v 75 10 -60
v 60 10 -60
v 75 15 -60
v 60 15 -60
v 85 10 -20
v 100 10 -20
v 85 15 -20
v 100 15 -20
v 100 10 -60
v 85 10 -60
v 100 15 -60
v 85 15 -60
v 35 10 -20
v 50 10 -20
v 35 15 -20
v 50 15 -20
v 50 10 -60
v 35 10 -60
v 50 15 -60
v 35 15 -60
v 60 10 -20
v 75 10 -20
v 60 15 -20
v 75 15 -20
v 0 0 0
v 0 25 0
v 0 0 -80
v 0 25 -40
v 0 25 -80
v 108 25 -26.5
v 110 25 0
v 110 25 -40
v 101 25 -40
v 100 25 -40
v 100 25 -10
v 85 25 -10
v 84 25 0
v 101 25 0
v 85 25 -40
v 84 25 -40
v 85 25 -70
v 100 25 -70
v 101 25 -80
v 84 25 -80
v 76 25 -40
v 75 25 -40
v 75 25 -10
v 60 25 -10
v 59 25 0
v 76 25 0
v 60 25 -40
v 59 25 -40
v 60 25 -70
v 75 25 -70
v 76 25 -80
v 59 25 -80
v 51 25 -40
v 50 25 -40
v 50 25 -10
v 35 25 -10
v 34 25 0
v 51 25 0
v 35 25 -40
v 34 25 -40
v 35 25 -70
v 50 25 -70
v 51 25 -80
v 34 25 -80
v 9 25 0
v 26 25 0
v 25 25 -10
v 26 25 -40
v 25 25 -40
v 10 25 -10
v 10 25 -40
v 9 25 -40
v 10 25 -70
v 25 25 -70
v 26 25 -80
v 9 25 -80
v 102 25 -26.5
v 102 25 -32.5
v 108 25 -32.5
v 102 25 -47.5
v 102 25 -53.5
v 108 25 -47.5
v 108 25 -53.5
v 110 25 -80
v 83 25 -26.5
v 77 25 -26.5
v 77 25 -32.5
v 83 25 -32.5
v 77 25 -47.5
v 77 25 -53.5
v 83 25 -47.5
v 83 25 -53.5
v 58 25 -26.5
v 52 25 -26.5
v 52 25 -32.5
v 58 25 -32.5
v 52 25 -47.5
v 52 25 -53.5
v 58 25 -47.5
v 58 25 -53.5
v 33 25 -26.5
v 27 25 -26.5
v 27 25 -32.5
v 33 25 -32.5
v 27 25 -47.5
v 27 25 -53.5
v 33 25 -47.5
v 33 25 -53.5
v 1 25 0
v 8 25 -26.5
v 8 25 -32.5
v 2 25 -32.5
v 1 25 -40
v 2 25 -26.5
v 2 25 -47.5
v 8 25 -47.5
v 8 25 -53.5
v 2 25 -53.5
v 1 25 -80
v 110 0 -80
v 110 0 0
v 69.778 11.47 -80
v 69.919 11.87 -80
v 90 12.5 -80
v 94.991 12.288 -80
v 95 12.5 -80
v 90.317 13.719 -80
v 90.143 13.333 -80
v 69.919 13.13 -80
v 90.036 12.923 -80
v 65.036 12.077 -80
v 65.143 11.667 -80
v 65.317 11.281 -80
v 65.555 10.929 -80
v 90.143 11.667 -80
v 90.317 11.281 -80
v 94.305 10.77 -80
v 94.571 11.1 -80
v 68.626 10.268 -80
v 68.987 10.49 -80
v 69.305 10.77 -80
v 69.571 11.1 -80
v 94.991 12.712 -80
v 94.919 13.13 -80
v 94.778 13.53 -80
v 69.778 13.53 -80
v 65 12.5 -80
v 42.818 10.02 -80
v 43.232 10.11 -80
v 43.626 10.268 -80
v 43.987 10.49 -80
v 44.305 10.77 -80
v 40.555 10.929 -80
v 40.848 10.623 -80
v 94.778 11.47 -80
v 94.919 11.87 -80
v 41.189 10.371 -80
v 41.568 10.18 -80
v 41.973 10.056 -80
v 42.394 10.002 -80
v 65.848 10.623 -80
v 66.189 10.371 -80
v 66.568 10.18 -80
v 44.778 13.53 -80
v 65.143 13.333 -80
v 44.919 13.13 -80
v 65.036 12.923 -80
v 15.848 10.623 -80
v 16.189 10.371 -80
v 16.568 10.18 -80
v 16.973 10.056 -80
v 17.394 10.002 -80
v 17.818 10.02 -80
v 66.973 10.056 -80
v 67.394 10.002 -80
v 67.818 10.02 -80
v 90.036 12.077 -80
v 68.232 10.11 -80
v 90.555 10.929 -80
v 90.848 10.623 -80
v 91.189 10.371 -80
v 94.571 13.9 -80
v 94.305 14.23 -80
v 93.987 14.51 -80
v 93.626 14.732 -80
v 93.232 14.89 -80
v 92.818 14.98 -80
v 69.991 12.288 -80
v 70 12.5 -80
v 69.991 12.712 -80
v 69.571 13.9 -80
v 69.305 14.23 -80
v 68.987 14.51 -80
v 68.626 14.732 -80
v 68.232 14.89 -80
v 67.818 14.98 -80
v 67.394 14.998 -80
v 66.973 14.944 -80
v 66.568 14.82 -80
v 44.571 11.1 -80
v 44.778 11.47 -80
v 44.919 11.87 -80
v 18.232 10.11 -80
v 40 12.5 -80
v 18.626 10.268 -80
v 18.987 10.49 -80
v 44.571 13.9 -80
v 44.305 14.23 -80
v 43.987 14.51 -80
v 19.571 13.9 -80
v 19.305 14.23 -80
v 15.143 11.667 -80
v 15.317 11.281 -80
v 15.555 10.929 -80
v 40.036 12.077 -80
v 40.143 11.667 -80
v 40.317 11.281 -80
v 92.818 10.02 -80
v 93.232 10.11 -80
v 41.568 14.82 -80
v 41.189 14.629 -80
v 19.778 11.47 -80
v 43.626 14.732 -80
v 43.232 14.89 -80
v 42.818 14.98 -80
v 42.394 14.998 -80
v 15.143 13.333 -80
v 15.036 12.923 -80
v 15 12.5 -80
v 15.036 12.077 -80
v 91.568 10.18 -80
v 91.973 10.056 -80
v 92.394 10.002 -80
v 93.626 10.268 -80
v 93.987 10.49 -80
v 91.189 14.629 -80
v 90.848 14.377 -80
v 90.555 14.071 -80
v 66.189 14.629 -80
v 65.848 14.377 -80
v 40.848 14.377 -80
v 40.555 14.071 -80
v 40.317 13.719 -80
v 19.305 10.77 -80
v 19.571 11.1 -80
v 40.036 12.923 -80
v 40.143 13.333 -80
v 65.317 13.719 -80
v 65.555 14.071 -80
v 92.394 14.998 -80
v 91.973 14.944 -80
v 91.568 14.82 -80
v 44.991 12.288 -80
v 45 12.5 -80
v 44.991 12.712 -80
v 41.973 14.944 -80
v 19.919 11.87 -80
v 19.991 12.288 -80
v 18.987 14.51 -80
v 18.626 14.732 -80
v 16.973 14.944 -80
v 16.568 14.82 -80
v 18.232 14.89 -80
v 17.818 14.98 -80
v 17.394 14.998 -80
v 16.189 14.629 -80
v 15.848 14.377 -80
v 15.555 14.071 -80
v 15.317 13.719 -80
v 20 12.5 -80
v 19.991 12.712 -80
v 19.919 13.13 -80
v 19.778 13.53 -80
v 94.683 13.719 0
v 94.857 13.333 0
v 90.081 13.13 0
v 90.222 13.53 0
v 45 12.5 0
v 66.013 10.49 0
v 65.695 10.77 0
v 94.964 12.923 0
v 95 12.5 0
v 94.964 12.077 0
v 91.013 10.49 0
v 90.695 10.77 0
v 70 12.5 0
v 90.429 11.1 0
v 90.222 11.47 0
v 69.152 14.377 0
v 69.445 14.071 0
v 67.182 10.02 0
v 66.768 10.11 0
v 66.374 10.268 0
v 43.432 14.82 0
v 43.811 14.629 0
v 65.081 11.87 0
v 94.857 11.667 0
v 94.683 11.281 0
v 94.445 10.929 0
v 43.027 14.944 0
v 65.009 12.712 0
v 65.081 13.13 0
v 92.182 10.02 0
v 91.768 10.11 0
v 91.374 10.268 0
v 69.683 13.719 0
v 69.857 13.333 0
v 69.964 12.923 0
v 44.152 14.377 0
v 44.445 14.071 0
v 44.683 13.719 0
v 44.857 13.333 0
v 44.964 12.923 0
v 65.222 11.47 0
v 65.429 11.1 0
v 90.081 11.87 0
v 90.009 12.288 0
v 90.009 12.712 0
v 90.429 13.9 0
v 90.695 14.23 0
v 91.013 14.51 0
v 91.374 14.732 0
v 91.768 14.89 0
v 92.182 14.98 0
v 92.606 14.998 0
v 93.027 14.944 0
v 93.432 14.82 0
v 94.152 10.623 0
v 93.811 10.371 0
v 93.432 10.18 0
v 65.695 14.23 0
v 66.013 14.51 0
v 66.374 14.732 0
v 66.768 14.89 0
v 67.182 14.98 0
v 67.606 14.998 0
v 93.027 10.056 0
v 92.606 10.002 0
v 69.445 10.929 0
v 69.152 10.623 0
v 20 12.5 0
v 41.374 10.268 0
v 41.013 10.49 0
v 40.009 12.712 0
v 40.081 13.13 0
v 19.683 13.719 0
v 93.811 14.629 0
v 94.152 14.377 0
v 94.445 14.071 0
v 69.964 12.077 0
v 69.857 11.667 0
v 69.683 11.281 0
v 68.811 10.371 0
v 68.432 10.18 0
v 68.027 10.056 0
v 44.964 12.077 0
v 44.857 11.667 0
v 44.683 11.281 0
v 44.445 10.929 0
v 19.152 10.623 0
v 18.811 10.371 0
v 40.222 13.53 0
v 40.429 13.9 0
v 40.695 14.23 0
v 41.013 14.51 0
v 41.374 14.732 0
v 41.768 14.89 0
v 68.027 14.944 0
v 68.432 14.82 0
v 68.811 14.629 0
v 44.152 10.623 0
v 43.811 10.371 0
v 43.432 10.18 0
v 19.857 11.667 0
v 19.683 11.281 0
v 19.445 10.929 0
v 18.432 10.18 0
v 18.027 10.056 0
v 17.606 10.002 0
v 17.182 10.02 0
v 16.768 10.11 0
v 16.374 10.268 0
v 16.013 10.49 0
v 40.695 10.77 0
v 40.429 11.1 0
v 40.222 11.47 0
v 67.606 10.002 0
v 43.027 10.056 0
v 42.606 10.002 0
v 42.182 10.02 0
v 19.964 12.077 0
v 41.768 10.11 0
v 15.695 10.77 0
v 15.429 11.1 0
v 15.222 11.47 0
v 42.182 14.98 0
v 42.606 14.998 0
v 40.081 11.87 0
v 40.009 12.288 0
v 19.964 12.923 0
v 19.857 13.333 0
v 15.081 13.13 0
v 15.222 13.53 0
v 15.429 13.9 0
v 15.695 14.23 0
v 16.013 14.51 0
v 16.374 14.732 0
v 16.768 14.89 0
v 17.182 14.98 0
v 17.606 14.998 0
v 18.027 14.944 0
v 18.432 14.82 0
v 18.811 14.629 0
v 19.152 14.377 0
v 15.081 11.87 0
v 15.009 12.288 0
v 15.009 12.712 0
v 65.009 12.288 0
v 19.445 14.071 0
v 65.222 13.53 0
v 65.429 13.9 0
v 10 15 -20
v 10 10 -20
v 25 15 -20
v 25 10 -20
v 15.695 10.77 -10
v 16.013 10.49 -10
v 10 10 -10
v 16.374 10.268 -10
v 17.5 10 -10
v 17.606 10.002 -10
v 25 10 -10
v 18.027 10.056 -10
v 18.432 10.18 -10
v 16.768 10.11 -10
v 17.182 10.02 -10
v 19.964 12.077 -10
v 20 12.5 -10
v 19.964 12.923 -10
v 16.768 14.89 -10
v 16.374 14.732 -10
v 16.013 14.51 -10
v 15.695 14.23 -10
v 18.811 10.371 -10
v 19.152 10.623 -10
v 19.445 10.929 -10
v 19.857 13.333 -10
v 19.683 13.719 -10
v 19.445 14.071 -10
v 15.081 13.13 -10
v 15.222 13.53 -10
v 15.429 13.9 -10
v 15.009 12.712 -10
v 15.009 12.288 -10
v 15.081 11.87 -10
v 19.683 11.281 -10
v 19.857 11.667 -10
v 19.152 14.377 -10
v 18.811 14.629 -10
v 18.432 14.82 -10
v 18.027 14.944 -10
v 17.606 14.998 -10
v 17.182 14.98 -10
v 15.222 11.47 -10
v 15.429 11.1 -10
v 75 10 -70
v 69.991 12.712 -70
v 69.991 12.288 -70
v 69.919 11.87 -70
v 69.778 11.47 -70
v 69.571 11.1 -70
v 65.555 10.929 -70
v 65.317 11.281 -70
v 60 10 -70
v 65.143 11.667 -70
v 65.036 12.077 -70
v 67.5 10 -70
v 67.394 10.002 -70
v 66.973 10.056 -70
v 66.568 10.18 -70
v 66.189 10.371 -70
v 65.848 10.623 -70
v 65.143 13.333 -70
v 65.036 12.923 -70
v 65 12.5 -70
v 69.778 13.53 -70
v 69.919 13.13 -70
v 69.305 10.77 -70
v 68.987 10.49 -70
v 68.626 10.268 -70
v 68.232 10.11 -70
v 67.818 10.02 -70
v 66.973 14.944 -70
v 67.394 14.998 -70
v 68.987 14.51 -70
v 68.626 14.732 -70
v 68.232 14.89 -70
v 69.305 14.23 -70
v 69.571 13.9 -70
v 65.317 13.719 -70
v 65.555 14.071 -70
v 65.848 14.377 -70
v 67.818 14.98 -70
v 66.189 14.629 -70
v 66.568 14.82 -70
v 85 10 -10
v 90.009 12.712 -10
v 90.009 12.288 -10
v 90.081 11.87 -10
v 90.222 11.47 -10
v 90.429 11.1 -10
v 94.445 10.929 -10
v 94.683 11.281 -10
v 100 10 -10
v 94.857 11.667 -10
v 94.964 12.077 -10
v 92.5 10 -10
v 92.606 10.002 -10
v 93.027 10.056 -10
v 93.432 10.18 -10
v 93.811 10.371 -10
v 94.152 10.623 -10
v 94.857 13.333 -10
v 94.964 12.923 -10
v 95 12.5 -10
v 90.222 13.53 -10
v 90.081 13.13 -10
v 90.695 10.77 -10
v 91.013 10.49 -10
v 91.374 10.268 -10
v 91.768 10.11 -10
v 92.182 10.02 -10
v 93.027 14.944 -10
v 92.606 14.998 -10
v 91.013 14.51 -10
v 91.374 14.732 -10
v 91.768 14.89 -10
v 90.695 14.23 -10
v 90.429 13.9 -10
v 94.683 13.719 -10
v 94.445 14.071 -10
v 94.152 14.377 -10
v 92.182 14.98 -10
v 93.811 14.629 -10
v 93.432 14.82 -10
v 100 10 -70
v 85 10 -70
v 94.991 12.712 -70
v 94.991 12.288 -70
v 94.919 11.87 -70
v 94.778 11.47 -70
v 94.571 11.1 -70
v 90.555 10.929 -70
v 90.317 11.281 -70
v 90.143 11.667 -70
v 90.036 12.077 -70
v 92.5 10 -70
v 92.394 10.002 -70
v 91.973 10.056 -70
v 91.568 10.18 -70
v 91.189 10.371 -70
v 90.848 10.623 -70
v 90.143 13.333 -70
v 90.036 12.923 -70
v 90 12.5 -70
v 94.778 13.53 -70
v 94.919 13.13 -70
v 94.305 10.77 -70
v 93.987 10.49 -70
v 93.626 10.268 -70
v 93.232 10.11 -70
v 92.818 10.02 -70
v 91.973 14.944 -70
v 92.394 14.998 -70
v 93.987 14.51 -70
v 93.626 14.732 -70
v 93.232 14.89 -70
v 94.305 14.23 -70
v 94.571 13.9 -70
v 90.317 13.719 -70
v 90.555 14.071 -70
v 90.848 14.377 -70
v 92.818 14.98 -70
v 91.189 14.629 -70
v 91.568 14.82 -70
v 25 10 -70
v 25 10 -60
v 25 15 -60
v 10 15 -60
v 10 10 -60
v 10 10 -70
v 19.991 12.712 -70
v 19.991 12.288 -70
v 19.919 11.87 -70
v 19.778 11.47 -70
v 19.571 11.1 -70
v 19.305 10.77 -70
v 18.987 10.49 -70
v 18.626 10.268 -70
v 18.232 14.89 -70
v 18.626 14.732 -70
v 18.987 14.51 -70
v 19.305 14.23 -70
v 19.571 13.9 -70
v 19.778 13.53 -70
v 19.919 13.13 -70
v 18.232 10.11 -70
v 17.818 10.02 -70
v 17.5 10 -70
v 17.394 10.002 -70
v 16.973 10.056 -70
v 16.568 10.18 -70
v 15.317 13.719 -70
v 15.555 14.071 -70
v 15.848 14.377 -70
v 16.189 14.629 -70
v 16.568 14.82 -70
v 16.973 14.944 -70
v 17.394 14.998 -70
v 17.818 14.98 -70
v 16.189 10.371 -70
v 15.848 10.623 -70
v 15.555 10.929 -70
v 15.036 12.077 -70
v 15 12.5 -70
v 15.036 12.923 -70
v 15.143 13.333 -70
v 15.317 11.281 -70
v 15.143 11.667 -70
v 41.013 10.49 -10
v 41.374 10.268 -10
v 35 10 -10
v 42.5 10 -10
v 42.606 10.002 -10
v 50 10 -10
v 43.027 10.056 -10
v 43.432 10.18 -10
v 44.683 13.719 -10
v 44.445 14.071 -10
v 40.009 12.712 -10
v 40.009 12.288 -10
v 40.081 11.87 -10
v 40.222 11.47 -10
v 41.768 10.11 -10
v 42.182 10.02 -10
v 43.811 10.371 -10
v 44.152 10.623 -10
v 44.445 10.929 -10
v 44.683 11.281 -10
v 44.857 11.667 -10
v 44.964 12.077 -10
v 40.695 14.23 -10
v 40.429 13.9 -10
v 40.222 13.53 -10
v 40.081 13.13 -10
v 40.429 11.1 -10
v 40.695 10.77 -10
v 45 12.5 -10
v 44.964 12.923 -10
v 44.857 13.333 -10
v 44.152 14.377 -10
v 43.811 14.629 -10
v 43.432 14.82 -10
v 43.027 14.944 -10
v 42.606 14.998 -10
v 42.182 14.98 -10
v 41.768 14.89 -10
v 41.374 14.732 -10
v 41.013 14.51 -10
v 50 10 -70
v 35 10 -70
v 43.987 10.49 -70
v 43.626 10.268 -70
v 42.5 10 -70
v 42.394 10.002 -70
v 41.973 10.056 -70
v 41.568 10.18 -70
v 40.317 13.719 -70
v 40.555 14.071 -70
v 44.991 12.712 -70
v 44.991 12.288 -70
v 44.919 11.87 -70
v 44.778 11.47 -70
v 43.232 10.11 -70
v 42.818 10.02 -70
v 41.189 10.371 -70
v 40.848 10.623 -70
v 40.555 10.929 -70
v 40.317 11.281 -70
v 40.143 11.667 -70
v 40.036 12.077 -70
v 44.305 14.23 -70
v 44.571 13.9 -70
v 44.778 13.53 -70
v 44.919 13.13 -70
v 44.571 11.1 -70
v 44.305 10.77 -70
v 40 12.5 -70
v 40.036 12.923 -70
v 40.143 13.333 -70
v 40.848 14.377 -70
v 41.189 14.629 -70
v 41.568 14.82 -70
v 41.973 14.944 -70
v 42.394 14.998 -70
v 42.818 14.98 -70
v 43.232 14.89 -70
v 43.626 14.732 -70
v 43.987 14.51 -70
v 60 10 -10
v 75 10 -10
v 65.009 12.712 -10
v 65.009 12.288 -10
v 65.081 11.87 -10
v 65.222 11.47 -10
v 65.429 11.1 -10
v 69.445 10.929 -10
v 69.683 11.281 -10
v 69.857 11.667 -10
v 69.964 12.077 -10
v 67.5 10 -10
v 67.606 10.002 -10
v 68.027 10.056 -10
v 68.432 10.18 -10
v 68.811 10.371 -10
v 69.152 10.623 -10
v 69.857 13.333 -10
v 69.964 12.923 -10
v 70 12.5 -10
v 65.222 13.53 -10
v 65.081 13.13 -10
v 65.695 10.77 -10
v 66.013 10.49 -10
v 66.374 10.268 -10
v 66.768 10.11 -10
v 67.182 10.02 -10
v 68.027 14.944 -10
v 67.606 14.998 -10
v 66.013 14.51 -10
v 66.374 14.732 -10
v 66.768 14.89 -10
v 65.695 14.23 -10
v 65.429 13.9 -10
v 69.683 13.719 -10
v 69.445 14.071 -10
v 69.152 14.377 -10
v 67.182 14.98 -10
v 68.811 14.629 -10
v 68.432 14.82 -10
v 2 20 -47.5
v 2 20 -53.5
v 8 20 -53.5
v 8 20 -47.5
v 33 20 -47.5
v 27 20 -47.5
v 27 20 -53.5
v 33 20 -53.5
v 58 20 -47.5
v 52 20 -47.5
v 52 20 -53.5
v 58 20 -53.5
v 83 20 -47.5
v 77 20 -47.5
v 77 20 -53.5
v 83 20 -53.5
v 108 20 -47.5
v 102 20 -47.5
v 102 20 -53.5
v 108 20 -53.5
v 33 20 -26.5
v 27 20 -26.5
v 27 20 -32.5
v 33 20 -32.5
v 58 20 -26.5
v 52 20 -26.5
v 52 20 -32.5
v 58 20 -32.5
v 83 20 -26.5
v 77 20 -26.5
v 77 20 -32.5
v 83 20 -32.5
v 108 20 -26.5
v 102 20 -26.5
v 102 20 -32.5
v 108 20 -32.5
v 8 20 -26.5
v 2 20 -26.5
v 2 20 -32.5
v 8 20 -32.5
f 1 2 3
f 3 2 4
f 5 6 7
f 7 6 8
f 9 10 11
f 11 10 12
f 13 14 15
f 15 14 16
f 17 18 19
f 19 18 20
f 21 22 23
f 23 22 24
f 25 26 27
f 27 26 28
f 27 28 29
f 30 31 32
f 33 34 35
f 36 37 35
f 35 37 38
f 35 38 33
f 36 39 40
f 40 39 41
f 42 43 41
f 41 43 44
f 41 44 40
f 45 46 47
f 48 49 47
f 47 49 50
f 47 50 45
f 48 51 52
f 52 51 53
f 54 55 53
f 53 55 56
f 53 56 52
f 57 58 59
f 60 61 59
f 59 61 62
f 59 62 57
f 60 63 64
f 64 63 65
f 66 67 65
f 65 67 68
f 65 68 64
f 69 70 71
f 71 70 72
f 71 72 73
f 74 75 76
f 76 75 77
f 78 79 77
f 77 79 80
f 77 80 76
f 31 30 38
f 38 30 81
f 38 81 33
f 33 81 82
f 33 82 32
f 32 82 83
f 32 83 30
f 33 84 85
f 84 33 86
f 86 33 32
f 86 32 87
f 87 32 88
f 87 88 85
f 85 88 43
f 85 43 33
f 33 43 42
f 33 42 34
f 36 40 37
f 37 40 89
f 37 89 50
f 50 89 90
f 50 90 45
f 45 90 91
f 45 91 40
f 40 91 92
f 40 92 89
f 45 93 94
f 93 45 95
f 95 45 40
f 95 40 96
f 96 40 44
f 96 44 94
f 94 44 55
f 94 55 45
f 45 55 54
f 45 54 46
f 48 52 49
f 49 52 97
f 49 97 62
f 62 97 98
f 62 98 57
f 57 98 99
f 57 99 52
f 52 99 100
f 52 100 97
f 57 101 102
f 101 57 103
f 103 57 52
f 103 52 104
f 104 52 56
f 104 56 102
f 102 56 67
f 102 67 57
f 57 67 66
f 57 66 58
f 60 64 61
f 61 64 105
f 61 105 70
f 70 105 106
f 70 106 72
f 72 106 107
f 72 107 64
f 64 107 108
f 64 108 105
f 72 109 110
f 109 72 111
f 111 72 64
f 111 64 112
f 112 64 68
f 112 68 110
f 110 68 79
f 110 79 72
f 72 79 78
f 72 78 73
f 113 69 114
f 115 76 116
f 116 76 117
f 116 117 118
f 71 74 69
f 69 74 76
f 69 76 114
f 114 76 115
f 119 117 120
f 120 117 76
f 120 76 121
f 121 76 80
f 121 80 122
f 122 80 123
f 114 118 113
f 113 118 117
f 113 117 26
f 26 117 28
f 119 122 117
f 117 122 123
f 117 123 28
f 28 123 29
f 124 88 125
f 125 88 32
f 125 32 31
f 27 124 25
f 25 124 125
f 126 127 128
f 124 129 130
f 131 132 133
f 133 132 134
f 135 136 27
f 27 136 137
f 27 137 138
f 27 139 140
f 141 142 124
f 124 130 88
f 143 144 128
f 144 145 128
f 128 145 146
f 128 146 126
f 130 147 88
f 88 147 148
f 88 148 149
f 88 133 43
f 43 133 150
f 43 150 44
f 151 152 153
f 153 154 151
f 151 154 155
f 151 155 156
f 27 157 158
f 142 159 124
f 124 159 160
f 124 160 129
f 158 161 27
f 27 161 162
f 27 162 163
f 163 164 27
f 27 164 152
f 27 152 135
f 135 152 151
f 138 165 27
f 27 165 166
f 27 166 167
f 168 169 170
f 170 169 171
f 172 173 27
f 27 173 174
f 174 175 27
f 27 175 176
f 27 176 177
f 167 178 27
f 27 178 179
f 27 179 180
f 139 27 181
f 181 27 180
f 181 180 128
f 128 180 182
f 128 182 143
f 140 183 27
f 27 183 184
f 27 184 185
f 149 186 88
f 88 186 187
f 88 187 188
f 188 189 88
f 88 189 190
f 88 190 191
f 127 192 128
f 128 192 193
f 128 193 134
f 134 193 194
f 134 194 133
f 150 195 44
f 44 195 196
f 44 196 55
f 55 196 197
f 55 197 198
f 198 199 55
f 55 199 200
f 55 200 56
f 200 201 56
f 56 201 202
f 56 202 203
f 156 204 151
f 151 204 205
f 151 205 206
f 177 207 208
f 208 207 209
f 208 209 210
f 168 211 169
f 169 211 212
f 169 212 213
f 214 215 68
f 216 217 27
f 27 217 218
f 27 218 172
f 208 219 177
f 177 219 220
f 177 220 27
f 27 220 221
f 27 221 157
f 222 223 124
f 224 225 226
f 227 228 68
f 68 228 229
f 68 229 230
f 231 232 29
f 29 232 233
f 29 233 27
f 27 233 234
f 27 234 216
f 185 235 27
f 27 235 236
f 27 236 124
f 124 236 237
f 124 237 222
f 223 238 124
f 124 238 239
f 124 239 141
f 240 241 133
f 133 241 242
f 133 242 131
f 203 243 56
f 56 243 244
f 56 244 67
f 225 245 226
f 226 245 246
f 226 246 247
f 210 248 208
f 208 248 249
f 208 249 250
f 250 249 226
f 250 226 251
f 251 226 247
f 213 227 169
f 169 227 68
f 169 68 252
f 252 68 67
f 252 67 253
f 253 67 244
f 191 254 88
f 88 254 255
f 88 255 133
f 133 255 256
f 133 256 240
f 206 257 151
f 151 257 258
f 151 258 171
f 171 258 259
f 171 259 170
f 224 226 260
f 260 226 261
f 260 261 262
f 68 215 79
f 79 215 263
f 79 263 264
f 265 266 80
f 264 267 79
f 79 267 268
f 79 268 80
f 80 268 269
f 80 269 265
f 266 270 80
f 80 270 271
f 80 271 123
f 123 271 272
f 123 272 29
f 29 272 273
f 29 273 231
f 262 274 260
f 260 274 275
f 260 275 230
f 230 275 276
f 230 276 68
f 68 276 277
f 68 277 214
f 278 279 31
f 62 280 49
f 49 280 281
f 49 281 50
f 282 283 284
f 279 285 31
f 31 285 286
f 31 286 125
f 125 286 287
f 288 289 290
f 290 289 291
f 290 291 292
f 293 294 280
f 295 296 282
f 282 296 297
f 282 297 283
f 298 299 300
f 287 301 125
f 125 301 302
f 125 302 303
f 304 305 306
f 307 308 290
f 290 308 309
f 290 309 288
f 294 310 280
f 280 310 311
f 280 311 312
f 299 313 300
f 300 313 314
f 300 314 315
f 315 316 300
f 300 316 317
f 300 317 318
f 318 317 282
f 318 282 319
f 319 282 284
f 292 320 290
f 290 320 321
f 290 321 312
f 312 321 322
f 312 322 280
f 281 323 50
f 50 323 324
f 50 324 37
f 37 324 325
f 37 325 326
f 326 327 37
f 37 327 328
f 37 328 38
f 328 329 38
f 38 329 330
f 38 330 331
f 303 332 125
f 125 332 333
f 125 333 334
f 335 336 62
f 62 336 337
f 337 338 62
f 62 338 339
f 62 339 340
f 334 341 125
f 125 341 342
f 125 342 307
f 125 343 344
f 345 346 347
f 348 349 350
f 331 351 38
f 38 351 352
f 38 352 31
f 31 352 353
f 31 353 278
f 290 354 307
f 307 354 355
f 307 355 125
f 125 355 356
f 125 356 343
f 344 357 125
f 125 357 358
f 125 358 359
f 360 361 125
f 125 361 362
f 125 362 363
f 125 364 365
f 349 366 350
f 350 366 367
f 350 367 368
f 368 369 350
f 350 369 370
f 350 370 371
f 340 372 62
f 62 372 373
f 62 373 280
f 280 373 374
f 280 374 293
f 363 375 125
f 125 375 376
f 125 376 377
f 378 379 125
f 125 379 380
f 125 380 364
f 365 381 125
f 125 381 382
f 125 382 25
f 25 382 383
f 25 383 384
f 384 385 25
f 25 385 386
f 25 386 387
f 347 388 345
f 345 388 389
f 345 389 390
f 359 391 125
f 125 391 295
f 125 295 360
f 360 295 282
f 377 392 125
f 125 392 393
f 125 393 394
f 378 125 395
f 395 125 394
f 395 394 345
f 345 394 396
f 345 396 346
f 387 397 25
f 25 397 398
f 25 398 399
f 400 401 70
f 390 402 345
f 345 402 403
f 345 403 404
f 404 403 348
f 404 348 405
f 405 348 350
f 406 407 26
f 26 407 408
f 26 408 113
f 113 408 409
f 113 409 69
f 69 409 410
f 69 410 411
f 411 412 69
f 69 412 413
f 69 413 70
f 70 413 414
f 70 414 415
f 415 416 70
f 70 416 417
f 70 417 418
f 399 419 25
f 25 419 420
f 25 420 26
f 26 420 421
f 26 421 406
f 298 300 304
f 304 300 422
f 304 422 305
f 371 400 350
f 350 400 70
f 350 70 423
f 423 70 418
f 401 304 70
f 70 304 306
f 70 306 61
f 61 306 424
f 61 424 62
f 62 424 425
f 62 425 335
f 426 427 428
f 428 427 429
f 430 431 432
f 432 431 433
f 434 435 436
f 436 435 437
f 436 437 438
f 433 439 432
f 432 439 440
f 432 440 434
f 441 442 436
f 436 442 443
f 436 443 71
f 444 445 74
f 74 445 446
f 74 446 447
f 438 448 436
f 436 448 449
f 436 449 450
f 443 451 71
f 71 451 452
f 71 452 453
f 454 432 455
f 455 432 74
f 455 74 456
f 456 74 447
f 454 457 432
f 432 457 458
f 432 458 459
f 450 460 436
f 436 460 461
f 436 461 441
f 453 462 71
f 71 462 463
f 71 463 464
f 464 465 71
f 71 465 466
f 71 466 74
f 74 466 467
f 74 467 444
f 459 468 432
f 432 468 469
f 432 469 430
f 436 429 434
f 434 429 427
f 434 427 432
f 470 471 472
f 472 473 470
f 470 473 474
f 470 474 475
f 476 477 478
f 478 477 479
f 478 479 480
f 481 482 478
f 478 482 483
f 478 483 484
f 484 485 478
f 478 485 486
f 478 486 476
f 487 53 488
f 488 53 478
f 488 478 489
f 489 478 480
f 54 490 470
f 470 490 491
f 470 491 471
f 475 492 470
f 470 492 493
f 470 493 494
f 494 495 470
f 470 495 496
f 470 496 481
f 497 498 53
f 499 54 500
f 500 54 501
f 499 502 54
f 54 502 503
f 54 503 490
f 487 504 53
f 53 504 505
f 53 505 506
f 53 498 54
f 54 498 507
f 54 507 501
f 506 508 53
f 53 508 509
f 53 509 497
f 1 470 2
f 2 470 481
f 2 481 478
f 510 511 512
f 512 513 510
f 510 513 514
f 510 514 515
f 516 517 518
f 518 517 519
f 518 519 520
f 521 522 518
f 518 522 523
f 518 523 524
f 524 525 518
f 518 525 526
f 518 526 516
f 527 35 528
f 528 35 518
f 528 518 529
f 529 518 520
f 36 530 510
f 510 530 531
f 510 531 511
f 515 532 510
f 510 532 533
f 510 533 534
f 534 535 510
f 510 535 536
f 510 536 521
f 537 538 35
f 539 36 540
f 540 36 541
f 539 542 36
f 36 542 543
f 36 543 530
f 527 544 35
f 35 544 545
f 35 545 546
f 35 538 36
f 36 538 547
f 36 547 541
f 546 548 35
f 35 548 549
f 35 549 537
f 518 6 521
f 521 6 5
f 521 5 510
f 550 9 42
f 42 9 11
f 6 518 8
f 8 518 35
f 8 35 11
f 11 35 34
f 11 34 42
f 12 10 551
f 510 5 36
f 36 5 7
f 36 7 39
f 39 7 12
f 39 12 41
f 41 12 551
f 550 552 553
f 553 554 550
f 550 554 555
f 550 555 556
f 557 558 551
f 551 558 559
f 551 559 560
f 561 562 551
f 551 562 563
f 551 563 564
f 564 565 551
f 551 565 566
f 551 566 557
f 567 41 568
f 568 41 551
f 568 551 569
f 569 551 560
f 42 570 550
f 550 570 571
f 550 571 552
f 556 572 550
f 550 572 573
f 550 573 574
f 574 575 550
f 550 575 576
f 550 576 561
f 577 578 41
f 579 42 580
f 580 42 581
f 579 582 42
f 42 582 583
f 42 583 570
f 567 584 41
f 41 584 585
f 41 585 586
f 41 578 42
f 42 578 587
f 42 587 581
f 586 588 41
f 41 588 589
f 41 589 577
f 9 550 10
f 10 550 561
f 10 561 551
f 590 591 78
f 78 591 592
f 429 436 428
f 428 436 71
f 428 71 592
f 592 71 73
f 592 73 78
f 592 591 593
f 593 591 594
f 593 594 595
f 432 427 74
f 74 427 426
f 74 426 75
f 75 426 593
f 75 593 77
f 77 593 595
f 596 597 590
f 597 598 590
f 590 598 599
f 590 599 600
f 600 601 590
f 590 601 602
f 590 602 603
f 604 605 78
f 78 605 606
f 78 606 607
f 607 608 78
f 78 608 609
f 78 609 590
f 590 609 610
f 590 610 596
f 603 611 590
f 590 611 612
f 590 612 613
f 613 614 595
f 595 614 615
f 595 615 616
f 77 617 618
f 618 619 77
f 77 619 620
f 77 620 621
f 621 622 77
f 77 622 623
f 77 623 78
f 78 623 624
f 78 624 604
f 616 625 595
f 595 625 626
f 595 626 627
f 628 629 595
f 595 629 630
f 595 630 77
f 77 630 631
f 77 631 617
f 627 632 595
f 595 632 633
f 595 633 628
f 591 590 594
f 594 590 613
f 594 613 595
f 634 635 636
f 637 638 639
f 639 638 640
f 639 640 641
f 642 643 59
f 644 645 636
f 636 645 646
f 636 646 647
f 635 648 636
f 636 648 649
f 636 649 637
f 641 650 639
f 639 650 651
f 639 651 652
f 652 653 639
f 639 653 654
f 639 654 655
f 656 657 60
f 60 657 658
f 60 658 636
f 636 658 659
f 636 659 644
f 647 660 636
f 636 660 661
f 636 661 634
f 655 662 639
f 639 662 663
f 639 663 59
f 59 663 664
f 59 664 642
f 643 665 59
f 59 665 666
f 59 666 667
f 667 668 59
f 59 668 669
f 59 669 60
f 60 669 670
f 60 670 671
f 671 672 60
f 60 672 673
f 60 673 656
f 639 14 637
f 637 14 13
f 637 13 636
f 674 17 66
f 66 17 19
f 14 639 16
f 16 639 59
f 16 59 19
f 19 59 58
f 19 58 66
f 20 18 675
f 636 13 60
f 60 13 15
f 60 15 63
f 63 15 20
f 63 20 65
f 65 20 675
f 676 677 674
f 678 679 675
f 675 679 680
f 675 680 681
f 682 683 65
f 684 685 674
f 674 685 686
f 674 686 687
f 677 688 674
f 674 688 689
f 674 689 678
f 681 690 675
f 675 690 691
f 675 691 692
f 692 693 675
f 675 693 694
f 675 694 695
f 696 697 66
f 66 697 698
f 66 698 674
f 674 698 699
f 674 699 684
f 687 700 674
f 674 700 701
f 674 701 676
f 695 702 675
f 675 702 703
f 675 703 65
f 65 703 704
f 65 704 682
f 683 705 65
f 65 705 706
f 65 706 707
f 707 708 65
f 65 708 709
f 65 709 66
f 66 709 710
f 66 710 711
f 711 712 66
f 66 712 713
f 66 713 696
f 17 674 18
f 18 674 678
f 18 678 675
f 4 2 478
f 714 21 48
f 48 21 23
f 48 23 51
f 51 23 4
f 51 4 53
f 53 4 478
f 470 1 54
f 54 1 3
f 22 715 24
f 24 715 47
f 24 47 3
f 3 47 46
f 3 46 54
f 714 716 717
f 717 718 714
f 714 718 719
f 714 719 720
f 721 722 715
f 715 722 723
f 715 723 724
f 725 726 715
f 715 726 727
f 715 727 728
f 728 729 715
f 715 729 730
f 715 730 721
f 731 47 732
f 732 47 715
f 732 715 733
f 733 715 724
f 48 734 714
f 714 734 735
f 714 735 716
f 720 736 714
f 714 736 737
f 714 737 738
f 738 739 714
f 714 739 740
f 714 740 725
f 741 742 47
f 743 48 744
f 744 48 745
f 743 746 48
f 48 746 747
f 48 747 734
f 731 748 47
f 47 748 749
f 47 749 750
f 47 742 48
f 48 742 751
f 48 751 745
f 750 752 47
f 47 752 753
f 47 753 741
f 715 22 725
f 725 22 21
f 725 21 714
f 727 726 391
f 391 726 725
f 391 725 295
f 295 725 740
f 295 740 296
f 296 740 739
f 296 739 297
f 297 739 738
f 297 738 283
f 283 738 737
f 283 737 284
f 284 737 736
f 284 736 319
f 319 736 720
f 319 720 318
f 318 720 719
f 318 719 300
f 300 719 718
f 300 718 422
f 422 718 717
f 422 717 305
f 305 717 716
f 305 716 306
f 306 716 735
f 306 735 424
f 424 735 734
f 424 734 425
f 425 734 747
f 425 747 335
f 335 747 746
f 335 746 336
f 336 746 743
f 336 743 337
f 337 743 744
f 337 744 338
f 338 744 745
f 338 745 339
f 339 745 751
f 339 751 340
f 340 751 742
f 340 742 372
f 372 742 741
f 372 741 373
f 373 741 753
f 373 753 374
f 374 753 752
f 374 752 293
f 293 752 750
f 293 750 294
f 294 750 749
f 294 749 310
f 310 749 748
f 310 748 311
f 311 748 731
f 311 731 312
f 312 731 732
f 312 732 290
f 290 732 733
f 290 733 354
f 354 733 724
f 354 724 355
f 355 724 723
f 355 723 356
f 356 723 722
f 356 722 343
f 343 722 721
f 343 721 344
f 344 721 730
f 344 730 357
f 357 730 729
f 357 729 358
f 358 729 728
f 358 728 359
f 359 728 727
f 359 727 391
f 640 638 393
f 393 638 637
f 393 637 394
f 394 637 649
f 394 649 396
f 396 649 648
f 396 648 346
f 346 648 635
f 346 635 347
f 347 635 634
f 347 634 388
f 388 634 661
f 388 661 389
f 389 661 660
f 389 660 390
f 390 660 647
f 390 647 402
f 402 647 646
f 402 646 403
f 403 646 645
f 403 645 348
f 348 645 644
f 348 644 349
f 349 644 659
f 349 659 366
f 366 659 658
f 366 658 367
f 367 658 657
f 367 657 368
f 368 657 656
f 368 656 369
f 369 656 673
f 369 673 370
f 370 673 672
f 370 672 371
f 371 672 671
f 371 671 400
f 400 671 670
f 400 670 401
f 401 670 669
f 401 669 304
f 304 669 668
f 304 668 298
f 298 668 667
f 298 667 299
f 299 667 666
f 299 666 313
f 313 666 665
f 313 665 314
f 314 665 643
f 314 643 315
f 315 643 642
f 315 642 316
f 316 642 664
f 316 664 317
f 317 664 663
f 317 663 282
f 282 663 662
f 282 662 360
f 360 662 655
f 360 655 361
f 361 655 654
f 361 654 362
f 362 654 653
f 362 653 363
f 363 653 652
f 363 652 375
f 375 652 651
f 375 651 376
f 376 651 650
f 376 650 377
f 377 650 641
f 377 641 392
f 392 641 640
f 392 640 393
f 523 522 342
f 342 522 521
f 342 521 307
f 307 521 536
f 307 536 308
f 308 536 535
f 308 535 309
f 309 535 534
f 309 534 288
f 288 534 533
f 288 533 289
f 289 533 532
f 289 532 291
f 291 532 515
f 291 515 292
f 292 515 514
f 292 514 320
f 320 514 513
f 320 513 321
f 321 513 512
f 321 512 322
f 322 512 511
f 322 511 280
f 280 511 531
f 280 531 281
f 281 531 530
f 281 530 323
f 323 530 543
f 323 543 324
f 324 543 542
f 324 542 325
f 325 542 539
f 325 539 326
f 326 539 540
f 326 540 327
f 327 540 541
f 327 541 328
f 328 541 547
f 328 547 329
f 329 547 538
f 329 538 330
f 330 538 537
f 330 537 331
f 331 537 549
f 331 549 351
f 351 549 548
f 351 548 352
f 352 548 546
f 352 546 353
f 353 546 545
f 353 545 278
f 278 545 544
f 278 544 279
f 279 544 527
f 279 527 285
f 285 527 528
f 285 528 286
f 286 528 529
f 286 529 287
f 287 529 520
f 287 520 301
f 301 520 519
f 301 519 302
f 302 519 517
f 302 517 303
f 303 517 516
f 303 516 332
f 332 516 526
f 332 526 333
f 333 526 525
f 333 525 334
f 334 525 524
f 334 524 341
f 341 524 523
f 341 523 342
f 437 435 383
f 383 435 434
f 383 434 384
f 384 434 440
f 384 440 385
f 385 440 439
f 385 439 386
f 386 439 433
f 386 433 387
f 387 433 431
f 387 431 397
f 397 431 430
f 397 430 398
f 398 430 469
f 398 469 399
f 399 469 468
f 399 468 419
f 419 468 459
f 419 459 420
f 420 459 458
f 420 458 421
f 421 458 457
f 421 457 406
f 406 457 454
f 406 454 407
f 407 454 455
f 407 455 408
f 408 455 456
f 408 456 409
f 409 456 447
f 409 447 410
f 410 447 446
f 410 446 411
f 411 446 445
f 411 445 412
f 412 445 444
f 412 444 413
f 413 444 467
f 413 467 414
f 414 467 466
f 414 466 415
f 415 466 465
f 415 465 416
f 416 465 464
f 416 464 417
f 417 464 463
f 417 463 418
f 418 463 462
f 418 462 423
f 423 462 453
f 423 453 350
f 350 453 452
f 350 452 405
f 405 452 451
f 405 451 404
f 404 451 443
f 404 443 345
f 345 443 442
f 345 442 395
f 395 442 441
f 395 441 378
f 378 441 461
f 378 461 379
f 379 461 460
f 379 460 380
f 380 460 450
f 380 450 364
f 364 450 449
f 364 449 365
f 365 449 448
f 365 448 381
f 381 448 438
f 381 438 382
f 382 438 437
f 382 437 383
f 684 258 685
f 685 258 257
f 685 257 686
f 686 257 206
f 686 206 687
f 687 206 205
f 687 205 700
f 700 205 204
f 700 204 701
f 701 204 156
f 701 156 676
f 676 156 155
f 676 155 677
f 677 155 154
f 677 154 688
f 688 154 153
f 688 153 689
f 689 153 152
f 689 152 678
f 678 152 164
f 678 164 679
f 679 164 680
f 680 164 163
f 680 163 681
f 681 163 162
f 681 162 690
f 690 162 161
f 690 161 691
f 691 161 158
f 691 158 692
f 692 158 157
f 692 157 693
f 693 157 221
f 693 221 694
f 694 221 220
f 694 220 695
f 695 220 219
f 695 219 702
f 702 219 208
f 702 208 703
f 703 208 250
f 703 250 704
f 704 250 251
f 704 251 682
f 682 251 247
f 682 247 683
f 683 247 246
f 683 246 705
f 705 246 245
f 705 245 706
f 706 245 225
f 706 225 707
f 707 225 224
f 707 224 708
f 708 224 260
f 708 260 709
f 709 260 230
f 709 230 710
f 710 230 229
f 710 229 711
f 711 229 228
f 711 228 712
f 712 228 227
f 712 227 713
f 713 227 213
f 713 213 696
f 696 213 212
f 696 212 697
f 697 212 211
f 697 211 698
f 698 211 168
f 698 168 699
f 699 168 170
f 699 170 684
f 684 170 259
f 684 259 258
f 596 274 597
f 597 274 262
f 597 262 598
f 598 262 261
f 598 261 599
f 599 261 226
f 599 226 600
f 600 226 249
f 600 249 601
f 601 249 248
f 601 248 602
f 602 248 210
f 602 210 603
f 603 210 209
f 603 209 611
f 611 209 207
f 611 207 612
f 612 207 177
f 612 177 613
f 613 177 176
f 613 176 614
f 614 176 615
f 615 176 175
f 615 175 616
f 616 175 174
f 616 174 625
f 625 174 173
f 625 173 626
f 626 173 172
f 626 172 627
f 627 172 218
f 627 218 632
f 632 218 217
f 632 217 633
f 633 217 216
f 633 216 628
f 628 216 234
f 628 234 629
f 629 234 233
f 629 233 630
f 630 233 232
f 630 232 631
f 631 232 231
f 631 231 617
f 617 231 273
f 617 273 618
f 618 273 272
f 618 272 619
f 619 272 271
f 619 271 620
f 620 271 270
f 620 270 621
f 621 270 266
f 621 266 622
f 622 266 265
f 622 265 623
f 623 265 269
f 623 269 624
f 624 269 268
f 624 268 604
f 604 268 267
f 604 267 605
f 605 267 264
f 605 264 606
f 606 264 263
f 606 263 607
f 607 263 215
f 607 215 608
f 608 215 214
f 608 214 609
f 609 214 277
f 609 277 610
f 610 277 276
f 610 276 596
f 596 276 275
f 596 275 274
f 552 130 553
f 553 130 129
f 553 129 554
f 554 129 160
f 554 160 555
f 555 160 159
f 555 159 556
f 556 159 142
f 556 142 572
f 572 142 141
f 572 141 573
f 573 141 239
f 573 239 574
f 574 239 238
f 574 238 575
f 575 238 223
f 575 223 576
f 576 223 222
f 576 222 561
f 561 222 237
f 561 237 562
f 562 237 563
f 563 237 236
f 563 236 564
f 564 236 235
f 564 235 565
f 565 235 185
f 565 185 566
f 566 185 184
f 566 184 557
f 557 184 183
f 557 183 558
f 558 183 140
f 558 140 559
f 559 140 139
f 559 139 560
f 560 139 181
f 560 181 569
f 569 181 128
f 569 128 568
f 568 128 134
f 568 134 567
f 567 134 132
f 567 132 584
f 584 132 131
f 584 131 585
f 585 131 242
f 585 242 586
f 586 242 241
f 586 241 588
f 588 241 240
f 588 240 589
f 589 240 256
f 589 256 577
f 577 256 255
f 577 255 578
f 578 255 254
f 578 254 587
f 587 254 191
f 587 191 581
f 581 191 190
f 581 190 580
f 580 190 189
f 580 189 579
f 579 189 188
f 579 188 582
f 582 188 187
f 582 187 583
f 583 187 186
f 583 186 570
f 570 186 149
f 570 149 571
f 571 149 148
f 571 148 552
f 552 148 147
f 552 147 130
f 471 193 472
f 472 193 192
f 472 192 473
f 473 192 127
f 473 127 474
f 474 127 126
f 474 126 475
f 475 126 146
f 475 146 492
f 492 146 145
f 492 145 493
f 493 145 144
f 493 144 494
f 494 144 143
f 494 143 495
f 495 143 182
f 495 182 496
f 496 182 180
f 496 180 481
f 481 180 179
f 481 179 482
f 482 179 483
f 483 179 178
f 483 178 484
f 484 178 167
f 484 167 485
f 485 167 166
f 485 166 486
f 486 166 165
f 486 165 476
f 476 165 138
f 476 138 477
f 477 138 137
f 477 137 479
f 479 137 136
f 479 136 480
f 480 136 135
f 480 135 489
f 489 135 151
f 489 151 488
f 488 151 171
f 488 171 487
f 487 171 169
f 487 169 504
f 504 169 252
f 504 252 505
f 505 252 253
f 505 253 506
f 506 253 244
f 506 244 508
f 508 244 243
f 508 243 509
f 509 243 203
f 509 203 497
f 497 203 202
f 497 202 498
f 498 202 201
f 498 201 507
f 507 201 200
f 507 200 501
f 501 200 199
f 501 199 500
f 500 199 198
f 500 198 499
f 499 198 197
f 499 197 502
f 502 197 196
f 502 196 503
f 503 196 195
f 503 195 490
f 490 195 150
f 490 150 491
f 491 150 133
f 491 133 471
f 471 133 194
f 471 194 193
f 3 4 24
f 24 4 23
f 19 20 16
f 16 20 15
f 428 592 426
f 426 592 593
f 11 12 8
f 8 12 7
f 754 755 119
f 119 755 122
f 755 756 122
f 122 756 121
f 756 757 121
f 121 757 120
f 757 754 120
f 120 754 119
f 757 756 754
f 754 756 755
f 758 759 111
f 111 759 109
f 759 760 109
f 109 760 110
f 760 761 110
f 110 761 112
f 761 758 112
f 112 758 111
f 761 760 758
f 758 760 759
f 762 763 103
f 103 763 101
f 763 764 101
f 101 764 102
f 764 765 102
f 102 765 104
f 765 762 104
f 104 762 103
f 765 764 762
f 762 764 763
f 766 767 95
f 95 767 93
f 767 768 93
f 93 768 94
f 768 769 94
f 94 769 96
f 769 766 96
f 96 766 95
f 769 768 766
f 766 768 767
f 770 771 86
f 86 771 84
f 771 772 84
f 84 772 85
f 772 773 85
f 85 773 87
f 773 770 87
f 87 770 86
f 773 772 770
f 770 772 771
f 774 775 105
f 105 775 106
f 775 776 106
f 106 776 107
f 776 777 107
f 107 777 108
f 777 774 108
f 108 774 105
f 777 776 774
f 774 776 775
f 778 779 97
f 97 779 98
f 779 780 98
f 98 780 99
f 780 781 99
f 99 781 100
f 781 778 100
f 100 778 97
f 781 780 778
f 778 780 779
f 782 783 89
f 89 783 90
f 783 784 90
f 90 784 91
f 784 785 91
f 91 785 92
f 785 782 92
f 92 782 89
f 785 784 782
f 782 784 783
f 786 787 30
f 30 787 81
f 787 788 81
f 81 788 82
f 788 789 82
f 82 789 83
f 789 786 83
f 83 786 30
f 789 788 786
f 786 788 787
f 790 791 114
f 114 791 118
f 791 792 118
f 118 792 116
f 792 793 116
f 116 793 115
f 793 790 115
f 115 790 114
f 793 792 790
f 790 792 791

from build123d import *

# Parameters (mm, degrees)
SKETCH1_W           = 110
SKETCH1_H           = 25
BOSS_EXTRUDE1_DEPTH = 80
SKETCH2_W           = 15
SKETCH2_H           = 10
CUT_EXTRUDE1_DEPTH  = 15
SKETCH4_R           = 2.5
CUT_EXTRUDE2_DEPTH  = 10
SKETCH5_W           = 15
SKETCH5_H           = 40
CUT_EXTRUDE3_DEPTH  = 10
SKETCH6_W           = 6
SKETCH6_H           = 6
CUT_EXTRUDE4_DEPTH  = 5


with BuildPart() as part:
    # Sketch1 → Boss-Extrude1 (new body)
    with BuildSketch(Plane.XY):
        with Locations((55, 12.5)):
            Rectangle(SKETCH1_W, SKETCH1_H)
    extrude(amount=-BOSS_EXTRUDE1_DEPTH)

    # Sketch2 → Cut-Extrude1 (cut)
    with BuildSketch(Plane(origin=(0, 25, 0), x_dir=(1, 0, 0), z_dir=(0, 1, 0))):
        with Locations((17.5, 15)):
            Rectangle(SKETCH2_W, SKETCH2_H)
        with Locations((17.5, 65)):
            Rectangle(SKETCH2_W, SKETCH2_H)
        with Locations((42.5, 15)):
            Rectangle(SKETCH2_W, SKETCH2_H)
        with Locations((42.5, 65)):
            Rectangle(SKETCH2_W, SKETCH2_H)
        with Locations((67.5, 15)):
            Rectangle(SKETCH2_W, SKETCH2_H)
        with Locations((67.5, 65)):
            Rectangle(SKETCH2_W, SKETCH2_H)
        with Locations((92.5, 15)):
            Rectangle(SKETCH2_W, SKETCH2_H)
        with Locations((92.5, 65)):
            Rectangle(SKETCH2_W, SKETCH2_H)
    extrude(amount=-CUT_EXTRUDE1_DEPTH, mode=Mode.SUBTRACT)

    # Sketch4 → Cut-Extrude2 (cut)
    with BuildSketch(Plane.XY):
        with Locations((17.5, 12.5)):
            Circle(SKETCH4_R)
        with Locations((42.5, 12.5)):
            Circle(SKETCH4_R)
        with Locations((67.5, 12.5)):
            Circle(SKETCH4_R)
        with Locations((92.5, 12.5)):
            Circle(SKETCH4_R)
    cut_extrude2 = extrude(amount=-CUT_EXTRUDE2_DEPTH, mode=Mode.SUBTRACT)

    # Mirror1: Cut-Extrude2 across plane
    add(cut_extrude2.mirror(Plane.XY.offset(-40)), mode=Mode.SUBTRACT)

    # Sketch5 → Cut-Extrude3 (cut)
    with BuildSketch(Plane(origin=(0, 25, 0), x_dir=(1, 0, 0), z_dir=(0, 1, 0))):
        with Locations((42.5, 40)):
            Rectangle(SKETCH5_W, SKETCH5_H)
        with Locations((17.5, 40)):
            Rectangle(SKETCH5_W, SKETCH5_H)
        with Locations((67.5, 40)):
            Rectangle(SKETCH5_W, SKETCH5_H)
        with Locations((92.5, 40)):
            Rectangle(SKETCH5_W, SKETCH5_H)
    extrude(amount=-CUT_EXTRUDE3_DEPTH, mode=Mode.SUBTRACT)

    # Sketch6 → Cut-Extrude4 (cut)
    with BuildSketch(Plane(origin=(0, 25, 0), x_dir=(1, 0, 0), z_dir=(0, 1, 0))):
        with Locations((5, 50.5)):
            Rectangle(SKETCH6_W, SKETCH6_H)
        with Locations((30, 50.5)):
            Rectangle(SKETCH6_W, SKETCH6_H)
        with Locations((55, 50.5)):
            Rectangle(SKETCH6_W, SKETCH6_H)
        with Locations((80, 50.5)):
            Rectangle(SKETCH6_W, SKETCH6_H)
        with Locations((105, 50.5)):
            Rectangle(SKETCH6_W, SKETCH6_H)
        with Locations((30, 29.5)):
            Rectangle(SKETCH6_W, SKETCH6_H)
        with Locations((55, 29.5)):
            Rectangle(SKETCH6_W, SKETCH6_H)
        with Locations((80, 29.5)):
            Rectangle(SKETCH6_W, SKETCH6_H)
        with Locations((105, 29.5)):
            Rectangle(SKETCH6_W, SKETCH6_H)
        with Locations((5, 29.5)):
            Rectangle(SKETCH6_W, SKETCH6_H)
    extrude(amount=-CUT_EXTRUDE4_DEPTH, mode=Mode.SUBTRACT)


solid = part.part
